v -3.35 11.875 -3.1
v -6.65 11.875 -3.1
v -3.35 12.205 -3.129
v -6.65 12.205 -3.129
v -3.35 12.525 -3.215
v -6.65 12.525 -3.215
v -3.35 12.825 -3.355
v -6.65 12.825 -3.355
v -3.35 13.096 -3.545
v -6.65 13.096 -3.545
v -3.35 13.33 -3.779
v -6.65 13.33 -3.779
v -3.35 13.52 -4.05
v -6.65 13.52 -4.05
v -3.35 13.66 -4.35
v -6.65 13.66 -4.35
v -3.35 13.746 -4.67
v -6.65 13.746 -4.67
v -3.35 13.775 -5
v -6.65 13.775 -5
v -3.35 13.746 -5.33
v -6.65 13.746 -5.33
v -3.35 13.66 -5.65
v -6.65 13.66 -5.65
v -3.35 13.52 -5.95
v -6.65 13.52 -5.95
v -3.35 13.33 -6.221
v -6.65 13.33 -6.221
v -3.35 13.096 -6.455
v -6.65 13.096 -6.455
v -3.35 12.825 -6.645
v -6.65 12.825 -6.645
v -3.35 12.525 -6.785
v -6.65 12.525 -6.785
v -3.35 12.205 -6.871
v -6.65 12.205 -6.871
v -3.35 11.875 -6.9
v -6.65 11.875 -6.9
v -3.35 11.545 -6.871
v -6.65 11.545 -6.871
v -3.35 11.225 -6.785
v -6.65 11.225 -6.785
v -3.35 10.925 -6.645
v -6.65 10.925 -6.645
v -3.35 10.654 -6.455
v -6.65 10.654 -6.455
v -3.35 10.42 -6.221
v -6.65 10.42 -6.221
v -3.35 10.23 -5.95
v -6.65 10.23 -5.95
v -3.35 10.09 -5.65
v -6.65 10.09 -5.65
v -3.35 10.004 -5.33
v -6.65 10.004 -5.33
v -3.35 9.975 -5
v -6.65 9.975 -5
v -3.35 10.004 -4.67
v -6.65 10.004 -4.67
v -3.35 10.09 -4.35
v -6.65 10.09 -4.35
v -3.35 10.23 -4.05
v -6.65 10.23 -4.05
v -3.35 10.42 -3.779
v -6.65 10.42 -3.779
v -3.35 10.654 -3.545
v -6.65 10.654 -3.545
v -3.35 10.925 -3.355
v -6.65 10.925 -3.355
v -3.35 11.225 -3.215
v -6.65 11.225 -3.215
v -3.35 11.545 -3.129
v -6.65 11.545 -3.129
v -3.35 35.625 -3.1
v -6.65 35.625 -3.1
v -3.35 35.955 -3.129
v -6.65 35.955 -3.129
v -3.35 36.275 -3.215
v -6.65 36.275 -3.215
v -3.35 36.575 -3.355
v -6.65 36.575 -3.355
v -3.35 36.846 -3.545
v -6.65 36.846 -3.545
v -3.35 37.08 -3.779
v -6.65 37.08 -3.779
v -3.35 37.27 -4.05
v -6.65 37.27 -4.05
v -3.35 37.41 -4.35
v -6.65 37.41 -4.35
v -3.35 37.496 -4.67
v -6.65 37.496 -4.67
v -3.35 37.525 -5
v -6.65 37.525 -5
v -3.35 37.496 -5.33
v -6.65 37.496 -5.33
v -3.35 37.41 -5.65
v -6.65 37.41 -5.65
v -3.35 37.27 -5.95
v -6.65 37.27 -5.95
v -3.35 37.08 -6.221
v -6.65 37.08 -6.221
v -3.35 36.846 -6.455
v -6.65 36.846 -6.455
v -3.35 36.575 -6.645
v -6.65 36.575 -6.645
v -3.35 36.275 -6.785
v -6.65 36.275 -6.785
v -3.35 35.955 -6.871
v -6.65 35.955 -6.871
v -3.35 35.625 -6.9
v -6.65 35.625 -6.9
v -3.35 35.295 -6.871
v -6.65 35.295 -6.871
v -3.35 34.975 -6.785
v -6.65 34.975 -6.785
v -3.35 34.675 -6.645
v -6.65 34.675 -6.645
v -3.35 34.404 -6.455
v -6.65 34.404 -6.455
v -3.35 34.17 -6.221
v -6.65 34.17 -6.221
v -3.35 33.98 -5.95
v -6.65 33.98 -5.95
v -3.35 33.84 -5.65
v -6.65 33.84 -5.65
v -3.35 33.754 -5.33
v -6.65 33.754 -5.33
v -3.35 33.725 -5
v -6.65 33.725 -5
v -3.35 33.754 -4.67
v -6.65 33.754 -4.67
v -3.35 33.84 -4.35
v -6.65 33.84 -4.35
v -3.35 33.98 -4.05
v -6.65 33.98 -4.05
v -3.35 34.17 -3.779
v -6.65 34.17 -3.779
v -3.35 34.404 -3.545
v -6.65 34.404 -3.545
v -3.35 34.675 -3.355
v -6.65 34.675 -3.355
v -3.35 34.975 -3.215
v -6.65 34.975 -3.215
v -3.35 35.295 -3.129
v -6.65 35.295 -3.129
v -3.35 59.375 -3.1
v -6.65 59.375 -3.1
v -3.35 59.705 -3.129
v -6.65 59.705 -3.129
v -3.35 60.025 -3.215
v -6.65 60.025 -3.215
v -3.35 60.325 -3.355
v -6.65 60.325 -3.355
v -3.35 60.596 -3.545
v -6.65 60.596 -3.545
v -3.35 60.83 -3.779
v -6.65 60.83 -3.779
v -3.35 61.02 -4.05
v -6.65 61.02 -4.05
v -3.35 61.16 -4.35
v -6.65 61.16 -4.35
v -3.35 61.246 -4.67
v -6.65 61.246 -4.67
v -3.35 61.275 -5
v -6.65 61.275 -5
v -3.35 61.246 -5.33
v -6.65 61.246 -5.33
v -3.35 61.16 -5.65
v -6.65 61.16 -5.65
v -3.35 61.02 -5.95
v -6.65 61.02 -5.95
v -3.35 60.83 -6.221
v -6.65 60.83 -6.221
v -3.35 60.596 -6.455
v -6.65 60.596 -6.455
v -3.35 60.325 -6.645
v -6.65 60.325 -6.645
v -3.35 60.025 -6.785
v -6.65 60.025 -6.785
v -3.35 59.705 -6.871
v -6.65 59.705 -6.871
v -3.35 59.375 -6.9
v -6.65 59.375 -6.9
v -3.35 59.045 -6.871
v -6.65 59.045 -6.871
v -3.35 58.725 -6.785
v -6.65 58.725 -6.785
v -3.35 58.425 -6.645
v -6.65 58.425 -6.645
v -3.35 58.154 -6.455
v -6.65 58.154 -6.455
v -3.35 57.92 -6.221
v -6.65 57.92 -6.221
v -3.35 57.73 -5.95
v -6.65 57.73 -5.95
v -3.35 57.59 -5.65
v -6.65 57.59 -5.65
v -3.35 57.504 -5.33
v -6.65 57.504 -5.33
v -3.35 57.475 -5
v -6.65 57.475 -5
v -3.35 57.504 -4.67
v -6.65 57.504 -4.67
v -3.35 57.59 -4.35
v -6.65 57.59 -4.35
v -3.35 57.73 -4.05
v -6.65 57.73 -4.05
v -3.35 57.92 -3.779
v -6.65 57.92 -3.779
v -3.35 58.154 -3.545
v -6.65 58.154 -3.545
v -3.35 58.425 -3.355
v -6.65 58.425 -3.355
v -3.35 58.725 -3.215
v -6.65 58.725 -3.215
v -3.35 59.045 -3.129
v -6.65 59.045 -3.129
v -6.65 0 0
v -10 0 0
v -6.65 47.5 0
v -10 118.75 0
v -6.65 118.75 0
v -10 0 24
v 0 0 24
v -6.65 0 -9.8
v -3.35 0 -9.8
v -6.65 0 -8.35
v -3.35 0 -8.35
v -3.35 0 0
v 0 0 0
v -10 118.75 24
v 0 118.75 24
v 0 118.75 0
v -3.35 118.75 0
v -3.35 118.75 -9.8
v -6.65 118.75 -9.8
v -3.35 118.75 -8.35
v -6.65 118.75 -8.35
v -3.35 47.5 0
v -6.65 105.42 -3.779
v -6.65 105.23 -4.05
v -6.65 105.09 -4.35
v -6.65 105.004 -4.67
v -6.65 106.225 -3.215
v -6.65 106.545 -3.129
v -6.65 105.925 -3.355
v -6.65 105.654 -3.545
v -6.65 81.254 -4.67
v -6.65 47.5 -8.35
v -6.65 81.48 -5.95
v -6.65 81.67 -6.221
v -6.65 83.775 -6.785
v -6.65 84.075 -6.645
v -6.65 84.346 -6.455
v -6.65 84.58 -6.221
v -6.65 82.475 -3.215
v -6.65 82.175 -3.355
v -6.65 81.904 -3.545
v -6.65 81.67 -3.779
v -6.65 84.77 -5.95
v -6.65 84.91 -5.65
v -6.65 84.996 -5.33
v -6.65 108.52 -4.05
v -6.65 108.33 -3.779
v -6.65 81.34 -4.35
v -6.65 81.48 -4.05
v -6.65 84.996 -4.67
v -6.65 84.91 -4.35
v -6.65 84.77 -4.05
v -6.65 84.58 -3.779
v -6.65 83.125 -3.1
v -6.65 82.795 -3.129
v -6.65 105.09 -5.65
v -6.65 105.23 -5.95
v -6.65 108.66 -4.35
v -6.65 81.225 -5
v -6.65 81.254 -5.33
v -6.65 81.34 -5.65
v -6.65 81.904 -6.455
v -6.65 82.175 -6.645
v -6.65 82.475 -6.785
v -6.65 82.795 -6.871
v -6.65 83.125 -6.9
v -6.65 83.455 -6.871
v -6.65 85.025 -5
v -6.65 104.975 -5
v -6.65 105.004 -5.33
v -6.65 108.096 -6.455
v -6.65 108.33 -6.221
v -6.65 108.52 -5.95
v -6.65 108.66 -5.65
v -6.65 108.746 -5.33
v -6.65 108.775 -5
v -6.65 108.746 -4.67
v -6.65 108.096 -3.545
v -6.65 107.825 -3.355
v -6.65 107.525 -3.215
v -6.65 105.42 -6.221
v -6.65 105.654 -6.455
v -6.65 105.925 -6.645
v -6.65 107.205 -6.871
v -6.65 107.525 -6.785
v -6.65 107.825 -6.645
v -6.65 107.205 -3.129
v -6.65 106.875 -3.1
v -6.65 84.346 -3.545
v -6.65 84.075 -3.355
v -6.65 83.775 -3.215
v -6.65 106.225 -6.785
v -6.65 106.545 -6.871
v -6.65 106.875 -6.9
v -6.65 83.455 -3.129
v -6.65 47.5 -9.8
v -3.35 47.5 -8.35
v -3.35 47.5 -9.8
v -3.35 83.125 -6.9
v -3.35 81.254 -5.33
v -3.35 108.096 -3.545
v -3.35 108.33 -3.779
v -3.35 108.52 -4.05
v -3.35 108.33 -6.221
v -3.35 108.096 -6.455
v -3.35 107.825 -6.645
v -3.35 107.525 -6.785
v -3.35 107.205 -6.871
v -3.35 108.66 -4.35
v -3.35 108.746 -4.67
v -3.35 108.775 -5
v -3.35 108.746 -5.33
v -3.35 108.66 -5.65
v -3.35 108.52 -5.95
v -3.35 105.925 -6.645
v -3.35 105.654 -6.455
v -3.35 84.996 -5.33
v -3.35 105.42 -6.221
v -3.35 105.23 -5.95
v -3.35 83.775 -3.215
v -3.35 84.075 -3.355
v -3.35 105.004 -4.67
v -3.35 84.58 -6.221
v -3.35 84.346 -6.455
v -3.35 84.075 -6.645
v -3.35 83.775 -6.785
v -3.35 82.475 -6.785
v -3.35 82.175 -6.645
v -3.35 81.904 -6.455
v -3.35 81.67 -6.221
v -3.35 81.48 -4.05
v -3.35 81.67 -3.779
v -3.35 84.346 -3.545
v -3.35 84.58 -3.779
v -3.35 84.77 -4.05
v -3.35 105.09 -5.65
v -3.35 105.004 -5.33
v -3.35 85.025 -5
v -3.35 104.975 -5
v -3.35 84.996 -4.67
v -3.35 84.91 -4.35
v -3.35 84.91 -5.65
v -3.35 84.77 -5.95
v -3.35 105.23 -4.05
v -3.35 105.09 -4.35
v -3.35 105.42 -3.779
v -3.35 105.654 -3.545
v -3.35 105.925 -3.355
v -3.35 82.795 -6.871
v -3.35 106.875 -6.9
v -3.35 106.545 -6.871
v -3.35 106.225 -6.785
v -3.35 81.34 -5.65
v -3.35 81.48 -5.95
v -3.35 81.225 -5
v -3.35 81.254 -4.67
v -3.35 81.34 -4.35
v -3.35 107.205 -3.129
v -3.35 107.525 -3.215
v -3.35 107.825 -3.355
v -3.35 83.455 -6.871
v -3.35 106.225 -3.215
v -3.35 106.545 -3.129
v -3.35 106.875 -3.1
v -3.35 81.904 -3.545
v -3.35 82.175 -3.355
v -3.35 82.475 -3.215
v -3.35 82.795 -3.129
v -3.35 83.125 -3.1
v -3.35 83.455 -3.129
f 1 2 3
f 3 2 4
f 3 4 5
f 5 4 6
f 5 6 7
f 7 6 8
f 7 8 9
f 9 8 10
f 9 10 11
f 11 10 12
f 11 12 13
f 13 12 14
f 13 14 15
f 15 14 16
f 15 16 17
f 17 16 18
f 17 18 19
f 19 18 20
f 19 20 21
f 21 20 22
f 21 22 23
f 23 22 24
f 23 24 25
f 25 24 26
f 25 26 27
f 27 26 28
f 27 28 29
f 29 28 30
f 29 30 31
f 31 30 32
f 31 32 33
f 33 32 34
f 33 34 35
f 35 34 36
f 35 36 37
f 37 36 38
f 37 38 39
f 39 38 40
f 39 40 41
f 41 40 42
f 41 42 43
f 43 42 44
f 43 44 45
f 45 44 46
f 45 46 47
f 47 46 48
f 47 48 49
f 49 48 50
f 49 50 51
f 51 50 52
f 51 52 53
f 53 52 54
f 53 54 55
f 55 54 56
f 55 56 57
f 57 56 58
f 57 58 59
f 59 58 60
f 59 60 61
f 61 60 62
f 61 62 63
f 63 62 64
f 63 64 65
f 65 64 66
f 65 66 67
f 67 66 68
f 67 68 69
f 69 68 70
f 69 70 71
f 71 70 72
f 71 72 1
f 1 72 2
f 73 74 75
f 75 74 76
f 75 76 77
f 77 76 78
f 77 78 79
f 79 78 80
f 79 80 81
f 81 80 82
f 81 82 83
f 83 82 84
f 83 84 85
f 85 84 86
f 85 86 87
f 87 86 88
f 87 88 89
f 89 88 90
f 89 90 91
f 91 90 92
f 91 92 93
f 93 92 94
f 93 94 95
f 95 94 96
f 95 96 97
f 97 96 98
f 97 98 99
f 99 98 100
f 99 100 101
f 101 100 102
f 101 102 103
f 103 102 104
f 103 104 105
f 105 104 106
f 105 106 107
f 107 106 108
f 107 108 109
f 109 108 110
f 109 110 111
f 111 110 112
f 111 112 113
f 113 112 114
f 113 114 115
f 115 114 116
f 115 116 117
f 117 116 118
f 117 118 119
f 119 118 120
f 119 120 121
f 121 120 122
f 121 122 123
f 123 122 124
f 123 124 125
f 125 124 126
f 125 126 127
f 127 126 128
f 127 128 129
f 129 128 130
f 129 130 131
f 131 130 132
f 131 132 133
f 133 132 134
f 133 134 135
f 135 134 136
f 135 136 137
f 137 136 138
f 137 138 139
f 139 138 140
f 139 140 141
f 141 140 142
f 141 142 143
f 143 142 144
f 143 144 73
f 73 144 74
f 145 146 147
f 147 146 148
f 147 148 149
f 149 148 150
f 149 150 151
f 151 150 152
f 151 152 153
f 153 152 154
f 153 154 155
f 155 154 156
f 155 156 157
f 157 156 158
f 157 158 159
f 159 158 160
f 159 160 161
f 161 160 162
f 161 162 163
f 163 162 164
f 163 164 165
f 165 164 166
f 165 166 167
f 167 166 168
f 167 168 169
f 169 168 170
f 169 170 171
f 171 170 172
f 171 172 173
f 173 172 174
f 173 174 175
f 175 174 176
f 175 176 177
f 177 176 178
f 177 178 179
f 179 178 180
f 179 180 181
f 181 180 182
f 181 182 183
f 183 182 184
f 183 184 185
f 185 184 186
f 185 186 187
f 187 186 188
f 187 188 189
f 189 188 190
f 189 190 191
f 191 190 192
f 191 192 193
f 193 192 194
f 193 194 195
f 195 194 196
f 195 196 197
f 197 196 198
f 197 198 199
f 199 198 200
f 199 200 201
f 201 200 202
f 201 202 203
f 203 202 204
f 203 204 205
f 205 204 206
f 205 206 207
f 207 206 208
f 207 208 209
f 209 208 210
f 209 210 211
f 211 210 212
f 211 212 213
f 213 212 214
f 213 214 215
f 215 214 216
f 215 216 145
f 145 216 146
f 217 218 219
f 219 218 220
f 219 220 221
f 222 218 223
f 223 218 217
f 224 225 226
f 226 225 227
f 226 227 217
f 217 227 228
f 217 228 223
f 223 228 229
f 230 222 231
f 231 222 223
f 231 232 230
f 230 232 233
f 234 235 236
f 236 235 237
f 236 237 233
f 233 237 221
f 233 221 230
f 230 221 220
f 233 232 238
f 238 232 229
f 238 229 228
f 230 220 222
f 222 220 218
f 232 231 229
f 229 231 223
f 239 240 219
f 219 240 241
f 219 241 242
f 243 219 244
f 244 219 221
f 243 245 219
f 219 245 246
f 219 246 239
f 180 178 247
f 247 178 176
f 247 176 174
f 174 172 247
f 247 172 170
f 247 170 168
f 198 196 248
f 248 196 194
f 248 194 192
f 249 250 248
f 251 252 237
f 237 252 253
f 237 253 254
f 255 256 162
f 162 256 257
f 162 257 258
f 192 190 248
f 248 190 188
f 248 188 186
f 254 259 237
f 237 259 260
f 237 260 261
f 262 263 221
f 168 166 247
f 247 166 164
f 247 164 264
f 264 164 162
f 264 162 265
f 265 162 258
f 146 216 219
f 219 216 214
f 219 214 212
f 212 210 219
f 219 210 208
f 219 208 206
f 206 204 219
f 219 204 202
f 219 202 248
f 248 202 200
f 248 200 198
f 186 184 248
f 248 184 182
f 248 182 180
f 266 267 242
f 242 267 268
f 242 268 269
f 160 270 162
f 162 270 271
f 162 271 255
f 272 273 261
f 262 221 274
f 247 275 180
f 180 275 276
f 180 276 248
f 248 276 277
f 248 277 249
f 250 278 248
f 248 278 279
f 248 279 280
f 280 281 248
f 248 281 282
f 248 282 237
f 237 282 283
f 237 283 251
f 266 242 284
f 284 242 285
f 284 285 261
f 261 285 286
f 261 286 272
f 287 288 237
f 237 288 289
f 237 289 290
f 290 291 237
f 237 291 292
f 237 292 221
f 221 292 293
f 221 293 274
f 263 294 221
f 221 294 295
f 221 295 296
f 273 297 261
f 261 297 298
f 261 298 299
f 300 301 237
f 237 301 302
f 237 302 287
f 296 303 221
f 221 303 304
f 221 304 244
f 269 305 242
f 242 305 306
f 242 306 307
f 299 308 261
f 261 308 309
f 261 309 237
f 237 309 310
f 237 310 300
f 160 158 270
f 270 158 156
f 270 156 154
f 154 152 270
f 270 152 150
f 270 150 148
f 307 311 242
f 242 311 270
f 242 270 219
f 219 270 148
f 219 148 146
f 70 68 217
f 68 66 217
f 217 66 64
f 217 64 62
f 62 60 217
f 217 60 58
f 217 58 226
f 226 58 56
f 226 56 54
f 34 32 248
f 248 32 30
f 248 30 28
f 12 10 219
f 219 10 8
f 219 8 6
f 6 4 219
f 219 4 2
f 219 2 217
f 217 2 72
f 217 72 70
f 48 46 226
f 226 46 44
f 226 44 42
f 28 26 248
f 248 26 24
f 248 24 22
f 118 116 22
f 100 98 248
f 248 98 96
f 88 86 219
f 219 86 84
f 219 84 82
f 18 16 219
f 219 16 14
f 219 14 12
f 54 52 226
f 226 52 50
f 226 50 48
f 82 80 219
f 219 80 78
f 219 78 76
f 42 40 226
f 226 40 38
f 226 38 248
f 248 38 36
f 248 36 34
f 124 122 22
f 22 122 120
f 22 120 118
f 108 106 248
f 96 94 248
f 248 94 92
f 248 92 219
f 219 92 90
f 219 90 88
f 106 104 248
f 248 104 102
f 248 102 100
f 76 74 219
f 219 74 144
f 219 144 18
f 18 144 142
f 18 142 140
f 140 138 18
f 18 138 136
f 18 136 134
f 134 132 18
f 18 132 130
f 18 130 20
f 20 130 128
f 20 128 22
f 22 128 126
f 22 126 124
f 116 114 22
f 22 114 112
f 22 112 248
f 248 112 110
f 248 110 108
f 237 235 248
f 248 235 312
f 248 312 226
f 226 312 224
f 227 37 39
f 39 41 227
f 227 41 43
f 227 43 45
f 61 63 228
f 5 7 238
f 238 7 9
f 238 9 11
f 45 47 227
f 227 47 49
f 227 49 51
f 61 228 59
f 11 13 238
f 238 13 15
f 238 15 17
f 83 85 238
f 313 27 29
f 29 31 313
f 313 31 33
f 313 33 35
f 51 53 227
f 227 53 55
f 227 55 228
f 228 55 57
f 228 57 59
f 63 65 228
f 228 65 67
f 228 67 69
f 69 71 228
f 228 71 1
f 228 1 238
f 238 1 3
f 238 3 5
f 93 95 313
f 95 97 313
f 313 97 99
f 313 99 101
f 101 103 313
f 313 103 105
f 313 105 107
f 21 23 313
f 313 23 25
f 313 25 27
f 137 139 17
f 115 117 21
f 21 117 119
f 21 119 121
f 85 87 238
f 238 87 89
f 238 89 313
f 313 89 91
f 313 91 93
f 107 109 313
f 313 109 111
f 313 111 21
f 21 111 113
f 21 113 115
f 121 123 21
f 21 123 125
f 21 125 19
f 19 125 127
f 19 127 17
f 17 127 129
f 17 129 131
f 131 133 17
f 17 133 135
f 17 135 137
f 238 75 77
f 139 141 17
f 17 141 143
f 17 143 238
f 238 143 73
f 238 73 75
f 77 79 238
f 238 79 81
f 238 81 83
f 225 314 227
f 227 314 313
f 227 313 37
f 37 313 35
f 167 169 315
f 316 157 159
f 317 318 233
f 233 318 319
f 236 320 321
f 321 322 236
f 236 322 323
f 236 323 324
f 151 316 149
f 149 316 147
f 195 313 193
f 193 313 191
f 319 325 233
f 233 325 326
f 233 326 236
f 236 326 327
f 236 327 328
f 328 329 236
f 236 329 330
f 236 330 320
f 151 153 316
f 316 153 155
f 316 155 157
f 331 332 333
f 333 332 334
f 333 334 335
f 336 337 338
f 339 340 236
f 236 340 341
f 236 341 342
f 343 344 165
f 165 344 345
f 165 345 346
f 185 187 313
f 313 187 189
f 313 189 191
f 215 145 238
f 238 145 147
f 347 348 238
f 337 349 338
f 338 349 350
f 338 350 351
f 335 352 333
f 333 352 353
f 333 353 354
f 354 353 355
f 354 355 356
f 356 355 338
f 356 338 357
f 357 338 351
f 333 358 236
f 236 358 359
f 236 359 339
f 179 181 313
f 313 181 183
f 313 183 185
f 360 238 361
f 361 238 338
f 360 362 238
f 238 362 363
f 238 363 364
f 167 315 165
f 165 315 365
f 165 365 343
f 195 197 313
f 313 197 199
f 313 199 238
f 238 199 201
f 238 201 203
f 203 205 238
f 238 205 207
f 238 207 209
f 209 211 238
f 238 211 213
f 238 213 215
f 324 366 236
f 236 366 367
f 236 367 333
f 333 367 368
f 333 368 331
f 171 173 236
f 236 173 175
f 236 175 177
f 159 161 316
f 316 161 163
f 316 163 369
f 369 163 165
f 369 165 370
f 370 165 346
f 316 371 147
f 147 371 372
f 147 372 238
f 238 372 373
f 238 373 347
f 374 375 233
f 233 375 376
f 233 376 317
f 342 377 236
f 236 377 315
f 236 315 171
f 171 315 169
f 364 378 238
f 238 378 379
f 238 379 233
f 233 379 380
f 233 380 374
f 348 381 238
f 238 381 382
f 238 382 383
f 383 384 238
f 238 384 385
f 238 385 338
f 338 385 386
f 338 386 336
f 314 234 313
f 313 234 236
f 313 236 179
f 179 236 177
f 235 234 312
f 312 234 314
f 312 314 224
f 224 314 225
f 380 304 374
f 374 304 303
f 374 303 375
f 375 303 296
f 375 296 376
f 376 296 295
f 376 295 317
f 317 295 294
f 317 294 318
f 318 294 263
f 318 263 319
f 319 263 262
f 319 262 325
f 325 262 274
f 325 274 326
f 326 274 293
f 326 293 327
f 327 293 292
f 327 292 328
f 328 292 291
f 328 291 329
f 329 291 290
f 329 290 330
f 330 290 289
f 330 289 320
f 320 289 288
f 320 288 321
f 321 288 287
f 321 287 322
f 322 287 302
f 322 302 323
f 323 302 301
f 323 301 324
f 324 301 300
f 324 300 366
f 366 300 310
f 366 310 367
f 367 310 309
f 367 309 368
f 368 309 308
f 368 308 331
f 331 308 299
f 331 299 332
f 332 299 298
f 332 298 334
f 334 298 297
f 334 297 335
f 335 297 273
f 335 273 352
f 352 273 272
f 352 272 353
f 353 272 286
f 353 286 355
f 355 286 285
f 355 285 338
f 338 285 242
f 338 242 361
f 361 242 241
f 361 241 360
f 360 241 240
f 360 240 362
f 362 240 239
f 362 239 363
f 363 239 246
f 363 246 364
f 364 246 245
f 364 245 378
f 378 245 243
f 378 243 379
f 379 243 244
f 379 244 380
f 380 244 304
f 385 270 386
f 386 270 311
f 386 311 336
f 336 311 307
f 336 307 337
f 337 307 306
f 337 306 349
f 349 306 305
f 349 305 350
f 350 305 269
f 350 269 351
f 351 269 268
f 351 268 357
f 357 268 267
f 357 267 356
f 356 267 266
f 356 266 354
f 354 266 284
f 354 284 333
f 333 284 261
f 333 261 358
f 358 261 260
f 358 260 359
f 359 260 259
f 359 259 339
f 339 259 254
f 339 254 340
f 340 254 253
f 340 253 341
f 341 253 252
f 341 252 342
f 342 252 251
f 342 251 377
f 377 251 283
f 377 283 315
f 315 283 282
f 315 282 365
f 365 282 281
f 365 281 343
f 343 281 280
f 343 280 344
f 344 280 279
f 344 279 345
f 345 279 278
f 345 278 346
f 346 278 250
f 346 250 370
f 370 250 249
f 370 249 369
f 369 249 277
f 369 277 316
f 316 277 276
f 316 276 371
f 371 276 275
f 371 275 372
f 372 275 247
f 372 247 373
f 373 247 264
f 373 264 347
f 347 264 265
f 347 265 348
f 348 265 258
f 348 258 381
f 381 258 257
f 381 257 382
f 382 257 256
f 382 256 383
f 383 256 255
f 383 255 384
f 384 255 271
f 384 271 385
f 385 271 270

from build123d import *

# Parameters (mm, degrees)
SKETCH1_W           = 118.75
SKETCH1_H           = 24
BOSS_EXTRUDE1_DEPTH = 10
SKETCH2_W           = 3.3
SKETCH2_H           = 9.8
BOSS_EXTRUDE2_DEPTH = 118.75
CUT_EXTRUDE1_REACH  = 123.333
SKETCH4_R           = 1.9
LPATTERN1_COUNT     = 5
LPATTERN1_PITCH     = 23.75


with BuildPart() as part:
    # Sketch1 → Boss-Extrude1 (new body)
    with BuildSketch(Plane.YZ):
        with Locations((59.375, 12)):
            Rectangle(SKETCH1_W, SKETCH1_H)
    extrude(amount=-BOSS_EXTRUDE1_DEPTH)

    # Sketch2 → Boss-Extrude2 (add, through all)
    with BuildSketch(Plane.XZ):
        with Locations((-5, -4.9)):
            Rectangle(SKETCH2_W, SKETCH2_H)
    extrude(amount=-BOSS_EXTRUDE2_DEPTH)

    # Sketch4 → Cut-Extrude1 (cut, up to next)
    with BuildSketch(Plane(origin=(-6.65, 0, 0), x_dir=(0, -1, 0), z_dir=(-1, 0, 0)), mode=Mode.PRIVATE) as cut_extrude1_sk1:
        with Locations(Location((-106.875, -5, 0), (0, 0, 90))):
            Circle(SKETCH4_R)
    cut_extrude1_tool1 = extrude(cut_extrude1_sk1.sketch, amount=-CUT_EXTRUDE1_REACH, mode=Mode.PRIVATE) & part.part
    cut_extrude1 = cut_extrude1_tool1.solids().sort_by_distance((-6.65, 106.875, -5))[0]
    add(cut_extrude1, mode=Mode.SUBTRACT)

    # LPattern1: Cut-Extrude1 ×5
    with Locations(*[(0, -i * LPATTERN1_PITCH, 0) for i in range(1, LPATTERN1_COUNT)]):
        add(cut_extrude1, mode=Mode.SUBTRACT)


solid = part.part
